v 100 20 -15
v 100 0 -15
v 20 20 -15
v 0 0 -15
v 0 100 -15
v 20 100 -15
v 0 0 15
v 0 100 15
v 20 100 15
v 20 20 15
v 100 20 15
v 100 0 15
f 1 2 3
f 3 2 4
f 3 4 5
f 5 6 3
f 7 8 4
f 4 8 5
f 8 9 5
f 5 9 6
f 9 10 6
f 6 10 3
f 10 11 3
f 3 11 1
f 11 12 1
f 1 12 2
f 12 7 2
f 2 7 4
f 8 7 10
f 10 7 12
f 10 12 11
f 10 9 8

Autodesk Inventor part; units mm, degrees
ref_plane "YZ Plane" through (0, 0, 0) normal (1, 0, 0) x (0, 1, 0)
ref_plane "XZ Plane" through (0, 0, 0) normal (0, 1, 0) x (-1, 0, 0)
ref_plane "XY Plane" through (0, 0, 0) normal (0, 0, 1) x (1, 0, 0)
sketch "Sketch1" plane through (0, 0, 0) normal (0, 0, 1) x (1, 0, 0)
  line L0 (0, 0) -> (100, 0)
  line L1 (100, 0) -> (100, 20)
  line L2 (0, 0) -> (0, 100)
  line L3 (0, 100) -> (20, 100)
  line L4 (20, 100) -> (20, 20)
  line L5 (20, 20) -> (100, 20)
  dimension "d0" = 100
  dimension "d1" = 20
  dimension "d2" = 100
  dimension "d3" = 20
extrude "Extrusion1" add sketch "Sketch1" along normal mid plane 30
properties part number "CE-10.1.2" material "Stainless Steel"
